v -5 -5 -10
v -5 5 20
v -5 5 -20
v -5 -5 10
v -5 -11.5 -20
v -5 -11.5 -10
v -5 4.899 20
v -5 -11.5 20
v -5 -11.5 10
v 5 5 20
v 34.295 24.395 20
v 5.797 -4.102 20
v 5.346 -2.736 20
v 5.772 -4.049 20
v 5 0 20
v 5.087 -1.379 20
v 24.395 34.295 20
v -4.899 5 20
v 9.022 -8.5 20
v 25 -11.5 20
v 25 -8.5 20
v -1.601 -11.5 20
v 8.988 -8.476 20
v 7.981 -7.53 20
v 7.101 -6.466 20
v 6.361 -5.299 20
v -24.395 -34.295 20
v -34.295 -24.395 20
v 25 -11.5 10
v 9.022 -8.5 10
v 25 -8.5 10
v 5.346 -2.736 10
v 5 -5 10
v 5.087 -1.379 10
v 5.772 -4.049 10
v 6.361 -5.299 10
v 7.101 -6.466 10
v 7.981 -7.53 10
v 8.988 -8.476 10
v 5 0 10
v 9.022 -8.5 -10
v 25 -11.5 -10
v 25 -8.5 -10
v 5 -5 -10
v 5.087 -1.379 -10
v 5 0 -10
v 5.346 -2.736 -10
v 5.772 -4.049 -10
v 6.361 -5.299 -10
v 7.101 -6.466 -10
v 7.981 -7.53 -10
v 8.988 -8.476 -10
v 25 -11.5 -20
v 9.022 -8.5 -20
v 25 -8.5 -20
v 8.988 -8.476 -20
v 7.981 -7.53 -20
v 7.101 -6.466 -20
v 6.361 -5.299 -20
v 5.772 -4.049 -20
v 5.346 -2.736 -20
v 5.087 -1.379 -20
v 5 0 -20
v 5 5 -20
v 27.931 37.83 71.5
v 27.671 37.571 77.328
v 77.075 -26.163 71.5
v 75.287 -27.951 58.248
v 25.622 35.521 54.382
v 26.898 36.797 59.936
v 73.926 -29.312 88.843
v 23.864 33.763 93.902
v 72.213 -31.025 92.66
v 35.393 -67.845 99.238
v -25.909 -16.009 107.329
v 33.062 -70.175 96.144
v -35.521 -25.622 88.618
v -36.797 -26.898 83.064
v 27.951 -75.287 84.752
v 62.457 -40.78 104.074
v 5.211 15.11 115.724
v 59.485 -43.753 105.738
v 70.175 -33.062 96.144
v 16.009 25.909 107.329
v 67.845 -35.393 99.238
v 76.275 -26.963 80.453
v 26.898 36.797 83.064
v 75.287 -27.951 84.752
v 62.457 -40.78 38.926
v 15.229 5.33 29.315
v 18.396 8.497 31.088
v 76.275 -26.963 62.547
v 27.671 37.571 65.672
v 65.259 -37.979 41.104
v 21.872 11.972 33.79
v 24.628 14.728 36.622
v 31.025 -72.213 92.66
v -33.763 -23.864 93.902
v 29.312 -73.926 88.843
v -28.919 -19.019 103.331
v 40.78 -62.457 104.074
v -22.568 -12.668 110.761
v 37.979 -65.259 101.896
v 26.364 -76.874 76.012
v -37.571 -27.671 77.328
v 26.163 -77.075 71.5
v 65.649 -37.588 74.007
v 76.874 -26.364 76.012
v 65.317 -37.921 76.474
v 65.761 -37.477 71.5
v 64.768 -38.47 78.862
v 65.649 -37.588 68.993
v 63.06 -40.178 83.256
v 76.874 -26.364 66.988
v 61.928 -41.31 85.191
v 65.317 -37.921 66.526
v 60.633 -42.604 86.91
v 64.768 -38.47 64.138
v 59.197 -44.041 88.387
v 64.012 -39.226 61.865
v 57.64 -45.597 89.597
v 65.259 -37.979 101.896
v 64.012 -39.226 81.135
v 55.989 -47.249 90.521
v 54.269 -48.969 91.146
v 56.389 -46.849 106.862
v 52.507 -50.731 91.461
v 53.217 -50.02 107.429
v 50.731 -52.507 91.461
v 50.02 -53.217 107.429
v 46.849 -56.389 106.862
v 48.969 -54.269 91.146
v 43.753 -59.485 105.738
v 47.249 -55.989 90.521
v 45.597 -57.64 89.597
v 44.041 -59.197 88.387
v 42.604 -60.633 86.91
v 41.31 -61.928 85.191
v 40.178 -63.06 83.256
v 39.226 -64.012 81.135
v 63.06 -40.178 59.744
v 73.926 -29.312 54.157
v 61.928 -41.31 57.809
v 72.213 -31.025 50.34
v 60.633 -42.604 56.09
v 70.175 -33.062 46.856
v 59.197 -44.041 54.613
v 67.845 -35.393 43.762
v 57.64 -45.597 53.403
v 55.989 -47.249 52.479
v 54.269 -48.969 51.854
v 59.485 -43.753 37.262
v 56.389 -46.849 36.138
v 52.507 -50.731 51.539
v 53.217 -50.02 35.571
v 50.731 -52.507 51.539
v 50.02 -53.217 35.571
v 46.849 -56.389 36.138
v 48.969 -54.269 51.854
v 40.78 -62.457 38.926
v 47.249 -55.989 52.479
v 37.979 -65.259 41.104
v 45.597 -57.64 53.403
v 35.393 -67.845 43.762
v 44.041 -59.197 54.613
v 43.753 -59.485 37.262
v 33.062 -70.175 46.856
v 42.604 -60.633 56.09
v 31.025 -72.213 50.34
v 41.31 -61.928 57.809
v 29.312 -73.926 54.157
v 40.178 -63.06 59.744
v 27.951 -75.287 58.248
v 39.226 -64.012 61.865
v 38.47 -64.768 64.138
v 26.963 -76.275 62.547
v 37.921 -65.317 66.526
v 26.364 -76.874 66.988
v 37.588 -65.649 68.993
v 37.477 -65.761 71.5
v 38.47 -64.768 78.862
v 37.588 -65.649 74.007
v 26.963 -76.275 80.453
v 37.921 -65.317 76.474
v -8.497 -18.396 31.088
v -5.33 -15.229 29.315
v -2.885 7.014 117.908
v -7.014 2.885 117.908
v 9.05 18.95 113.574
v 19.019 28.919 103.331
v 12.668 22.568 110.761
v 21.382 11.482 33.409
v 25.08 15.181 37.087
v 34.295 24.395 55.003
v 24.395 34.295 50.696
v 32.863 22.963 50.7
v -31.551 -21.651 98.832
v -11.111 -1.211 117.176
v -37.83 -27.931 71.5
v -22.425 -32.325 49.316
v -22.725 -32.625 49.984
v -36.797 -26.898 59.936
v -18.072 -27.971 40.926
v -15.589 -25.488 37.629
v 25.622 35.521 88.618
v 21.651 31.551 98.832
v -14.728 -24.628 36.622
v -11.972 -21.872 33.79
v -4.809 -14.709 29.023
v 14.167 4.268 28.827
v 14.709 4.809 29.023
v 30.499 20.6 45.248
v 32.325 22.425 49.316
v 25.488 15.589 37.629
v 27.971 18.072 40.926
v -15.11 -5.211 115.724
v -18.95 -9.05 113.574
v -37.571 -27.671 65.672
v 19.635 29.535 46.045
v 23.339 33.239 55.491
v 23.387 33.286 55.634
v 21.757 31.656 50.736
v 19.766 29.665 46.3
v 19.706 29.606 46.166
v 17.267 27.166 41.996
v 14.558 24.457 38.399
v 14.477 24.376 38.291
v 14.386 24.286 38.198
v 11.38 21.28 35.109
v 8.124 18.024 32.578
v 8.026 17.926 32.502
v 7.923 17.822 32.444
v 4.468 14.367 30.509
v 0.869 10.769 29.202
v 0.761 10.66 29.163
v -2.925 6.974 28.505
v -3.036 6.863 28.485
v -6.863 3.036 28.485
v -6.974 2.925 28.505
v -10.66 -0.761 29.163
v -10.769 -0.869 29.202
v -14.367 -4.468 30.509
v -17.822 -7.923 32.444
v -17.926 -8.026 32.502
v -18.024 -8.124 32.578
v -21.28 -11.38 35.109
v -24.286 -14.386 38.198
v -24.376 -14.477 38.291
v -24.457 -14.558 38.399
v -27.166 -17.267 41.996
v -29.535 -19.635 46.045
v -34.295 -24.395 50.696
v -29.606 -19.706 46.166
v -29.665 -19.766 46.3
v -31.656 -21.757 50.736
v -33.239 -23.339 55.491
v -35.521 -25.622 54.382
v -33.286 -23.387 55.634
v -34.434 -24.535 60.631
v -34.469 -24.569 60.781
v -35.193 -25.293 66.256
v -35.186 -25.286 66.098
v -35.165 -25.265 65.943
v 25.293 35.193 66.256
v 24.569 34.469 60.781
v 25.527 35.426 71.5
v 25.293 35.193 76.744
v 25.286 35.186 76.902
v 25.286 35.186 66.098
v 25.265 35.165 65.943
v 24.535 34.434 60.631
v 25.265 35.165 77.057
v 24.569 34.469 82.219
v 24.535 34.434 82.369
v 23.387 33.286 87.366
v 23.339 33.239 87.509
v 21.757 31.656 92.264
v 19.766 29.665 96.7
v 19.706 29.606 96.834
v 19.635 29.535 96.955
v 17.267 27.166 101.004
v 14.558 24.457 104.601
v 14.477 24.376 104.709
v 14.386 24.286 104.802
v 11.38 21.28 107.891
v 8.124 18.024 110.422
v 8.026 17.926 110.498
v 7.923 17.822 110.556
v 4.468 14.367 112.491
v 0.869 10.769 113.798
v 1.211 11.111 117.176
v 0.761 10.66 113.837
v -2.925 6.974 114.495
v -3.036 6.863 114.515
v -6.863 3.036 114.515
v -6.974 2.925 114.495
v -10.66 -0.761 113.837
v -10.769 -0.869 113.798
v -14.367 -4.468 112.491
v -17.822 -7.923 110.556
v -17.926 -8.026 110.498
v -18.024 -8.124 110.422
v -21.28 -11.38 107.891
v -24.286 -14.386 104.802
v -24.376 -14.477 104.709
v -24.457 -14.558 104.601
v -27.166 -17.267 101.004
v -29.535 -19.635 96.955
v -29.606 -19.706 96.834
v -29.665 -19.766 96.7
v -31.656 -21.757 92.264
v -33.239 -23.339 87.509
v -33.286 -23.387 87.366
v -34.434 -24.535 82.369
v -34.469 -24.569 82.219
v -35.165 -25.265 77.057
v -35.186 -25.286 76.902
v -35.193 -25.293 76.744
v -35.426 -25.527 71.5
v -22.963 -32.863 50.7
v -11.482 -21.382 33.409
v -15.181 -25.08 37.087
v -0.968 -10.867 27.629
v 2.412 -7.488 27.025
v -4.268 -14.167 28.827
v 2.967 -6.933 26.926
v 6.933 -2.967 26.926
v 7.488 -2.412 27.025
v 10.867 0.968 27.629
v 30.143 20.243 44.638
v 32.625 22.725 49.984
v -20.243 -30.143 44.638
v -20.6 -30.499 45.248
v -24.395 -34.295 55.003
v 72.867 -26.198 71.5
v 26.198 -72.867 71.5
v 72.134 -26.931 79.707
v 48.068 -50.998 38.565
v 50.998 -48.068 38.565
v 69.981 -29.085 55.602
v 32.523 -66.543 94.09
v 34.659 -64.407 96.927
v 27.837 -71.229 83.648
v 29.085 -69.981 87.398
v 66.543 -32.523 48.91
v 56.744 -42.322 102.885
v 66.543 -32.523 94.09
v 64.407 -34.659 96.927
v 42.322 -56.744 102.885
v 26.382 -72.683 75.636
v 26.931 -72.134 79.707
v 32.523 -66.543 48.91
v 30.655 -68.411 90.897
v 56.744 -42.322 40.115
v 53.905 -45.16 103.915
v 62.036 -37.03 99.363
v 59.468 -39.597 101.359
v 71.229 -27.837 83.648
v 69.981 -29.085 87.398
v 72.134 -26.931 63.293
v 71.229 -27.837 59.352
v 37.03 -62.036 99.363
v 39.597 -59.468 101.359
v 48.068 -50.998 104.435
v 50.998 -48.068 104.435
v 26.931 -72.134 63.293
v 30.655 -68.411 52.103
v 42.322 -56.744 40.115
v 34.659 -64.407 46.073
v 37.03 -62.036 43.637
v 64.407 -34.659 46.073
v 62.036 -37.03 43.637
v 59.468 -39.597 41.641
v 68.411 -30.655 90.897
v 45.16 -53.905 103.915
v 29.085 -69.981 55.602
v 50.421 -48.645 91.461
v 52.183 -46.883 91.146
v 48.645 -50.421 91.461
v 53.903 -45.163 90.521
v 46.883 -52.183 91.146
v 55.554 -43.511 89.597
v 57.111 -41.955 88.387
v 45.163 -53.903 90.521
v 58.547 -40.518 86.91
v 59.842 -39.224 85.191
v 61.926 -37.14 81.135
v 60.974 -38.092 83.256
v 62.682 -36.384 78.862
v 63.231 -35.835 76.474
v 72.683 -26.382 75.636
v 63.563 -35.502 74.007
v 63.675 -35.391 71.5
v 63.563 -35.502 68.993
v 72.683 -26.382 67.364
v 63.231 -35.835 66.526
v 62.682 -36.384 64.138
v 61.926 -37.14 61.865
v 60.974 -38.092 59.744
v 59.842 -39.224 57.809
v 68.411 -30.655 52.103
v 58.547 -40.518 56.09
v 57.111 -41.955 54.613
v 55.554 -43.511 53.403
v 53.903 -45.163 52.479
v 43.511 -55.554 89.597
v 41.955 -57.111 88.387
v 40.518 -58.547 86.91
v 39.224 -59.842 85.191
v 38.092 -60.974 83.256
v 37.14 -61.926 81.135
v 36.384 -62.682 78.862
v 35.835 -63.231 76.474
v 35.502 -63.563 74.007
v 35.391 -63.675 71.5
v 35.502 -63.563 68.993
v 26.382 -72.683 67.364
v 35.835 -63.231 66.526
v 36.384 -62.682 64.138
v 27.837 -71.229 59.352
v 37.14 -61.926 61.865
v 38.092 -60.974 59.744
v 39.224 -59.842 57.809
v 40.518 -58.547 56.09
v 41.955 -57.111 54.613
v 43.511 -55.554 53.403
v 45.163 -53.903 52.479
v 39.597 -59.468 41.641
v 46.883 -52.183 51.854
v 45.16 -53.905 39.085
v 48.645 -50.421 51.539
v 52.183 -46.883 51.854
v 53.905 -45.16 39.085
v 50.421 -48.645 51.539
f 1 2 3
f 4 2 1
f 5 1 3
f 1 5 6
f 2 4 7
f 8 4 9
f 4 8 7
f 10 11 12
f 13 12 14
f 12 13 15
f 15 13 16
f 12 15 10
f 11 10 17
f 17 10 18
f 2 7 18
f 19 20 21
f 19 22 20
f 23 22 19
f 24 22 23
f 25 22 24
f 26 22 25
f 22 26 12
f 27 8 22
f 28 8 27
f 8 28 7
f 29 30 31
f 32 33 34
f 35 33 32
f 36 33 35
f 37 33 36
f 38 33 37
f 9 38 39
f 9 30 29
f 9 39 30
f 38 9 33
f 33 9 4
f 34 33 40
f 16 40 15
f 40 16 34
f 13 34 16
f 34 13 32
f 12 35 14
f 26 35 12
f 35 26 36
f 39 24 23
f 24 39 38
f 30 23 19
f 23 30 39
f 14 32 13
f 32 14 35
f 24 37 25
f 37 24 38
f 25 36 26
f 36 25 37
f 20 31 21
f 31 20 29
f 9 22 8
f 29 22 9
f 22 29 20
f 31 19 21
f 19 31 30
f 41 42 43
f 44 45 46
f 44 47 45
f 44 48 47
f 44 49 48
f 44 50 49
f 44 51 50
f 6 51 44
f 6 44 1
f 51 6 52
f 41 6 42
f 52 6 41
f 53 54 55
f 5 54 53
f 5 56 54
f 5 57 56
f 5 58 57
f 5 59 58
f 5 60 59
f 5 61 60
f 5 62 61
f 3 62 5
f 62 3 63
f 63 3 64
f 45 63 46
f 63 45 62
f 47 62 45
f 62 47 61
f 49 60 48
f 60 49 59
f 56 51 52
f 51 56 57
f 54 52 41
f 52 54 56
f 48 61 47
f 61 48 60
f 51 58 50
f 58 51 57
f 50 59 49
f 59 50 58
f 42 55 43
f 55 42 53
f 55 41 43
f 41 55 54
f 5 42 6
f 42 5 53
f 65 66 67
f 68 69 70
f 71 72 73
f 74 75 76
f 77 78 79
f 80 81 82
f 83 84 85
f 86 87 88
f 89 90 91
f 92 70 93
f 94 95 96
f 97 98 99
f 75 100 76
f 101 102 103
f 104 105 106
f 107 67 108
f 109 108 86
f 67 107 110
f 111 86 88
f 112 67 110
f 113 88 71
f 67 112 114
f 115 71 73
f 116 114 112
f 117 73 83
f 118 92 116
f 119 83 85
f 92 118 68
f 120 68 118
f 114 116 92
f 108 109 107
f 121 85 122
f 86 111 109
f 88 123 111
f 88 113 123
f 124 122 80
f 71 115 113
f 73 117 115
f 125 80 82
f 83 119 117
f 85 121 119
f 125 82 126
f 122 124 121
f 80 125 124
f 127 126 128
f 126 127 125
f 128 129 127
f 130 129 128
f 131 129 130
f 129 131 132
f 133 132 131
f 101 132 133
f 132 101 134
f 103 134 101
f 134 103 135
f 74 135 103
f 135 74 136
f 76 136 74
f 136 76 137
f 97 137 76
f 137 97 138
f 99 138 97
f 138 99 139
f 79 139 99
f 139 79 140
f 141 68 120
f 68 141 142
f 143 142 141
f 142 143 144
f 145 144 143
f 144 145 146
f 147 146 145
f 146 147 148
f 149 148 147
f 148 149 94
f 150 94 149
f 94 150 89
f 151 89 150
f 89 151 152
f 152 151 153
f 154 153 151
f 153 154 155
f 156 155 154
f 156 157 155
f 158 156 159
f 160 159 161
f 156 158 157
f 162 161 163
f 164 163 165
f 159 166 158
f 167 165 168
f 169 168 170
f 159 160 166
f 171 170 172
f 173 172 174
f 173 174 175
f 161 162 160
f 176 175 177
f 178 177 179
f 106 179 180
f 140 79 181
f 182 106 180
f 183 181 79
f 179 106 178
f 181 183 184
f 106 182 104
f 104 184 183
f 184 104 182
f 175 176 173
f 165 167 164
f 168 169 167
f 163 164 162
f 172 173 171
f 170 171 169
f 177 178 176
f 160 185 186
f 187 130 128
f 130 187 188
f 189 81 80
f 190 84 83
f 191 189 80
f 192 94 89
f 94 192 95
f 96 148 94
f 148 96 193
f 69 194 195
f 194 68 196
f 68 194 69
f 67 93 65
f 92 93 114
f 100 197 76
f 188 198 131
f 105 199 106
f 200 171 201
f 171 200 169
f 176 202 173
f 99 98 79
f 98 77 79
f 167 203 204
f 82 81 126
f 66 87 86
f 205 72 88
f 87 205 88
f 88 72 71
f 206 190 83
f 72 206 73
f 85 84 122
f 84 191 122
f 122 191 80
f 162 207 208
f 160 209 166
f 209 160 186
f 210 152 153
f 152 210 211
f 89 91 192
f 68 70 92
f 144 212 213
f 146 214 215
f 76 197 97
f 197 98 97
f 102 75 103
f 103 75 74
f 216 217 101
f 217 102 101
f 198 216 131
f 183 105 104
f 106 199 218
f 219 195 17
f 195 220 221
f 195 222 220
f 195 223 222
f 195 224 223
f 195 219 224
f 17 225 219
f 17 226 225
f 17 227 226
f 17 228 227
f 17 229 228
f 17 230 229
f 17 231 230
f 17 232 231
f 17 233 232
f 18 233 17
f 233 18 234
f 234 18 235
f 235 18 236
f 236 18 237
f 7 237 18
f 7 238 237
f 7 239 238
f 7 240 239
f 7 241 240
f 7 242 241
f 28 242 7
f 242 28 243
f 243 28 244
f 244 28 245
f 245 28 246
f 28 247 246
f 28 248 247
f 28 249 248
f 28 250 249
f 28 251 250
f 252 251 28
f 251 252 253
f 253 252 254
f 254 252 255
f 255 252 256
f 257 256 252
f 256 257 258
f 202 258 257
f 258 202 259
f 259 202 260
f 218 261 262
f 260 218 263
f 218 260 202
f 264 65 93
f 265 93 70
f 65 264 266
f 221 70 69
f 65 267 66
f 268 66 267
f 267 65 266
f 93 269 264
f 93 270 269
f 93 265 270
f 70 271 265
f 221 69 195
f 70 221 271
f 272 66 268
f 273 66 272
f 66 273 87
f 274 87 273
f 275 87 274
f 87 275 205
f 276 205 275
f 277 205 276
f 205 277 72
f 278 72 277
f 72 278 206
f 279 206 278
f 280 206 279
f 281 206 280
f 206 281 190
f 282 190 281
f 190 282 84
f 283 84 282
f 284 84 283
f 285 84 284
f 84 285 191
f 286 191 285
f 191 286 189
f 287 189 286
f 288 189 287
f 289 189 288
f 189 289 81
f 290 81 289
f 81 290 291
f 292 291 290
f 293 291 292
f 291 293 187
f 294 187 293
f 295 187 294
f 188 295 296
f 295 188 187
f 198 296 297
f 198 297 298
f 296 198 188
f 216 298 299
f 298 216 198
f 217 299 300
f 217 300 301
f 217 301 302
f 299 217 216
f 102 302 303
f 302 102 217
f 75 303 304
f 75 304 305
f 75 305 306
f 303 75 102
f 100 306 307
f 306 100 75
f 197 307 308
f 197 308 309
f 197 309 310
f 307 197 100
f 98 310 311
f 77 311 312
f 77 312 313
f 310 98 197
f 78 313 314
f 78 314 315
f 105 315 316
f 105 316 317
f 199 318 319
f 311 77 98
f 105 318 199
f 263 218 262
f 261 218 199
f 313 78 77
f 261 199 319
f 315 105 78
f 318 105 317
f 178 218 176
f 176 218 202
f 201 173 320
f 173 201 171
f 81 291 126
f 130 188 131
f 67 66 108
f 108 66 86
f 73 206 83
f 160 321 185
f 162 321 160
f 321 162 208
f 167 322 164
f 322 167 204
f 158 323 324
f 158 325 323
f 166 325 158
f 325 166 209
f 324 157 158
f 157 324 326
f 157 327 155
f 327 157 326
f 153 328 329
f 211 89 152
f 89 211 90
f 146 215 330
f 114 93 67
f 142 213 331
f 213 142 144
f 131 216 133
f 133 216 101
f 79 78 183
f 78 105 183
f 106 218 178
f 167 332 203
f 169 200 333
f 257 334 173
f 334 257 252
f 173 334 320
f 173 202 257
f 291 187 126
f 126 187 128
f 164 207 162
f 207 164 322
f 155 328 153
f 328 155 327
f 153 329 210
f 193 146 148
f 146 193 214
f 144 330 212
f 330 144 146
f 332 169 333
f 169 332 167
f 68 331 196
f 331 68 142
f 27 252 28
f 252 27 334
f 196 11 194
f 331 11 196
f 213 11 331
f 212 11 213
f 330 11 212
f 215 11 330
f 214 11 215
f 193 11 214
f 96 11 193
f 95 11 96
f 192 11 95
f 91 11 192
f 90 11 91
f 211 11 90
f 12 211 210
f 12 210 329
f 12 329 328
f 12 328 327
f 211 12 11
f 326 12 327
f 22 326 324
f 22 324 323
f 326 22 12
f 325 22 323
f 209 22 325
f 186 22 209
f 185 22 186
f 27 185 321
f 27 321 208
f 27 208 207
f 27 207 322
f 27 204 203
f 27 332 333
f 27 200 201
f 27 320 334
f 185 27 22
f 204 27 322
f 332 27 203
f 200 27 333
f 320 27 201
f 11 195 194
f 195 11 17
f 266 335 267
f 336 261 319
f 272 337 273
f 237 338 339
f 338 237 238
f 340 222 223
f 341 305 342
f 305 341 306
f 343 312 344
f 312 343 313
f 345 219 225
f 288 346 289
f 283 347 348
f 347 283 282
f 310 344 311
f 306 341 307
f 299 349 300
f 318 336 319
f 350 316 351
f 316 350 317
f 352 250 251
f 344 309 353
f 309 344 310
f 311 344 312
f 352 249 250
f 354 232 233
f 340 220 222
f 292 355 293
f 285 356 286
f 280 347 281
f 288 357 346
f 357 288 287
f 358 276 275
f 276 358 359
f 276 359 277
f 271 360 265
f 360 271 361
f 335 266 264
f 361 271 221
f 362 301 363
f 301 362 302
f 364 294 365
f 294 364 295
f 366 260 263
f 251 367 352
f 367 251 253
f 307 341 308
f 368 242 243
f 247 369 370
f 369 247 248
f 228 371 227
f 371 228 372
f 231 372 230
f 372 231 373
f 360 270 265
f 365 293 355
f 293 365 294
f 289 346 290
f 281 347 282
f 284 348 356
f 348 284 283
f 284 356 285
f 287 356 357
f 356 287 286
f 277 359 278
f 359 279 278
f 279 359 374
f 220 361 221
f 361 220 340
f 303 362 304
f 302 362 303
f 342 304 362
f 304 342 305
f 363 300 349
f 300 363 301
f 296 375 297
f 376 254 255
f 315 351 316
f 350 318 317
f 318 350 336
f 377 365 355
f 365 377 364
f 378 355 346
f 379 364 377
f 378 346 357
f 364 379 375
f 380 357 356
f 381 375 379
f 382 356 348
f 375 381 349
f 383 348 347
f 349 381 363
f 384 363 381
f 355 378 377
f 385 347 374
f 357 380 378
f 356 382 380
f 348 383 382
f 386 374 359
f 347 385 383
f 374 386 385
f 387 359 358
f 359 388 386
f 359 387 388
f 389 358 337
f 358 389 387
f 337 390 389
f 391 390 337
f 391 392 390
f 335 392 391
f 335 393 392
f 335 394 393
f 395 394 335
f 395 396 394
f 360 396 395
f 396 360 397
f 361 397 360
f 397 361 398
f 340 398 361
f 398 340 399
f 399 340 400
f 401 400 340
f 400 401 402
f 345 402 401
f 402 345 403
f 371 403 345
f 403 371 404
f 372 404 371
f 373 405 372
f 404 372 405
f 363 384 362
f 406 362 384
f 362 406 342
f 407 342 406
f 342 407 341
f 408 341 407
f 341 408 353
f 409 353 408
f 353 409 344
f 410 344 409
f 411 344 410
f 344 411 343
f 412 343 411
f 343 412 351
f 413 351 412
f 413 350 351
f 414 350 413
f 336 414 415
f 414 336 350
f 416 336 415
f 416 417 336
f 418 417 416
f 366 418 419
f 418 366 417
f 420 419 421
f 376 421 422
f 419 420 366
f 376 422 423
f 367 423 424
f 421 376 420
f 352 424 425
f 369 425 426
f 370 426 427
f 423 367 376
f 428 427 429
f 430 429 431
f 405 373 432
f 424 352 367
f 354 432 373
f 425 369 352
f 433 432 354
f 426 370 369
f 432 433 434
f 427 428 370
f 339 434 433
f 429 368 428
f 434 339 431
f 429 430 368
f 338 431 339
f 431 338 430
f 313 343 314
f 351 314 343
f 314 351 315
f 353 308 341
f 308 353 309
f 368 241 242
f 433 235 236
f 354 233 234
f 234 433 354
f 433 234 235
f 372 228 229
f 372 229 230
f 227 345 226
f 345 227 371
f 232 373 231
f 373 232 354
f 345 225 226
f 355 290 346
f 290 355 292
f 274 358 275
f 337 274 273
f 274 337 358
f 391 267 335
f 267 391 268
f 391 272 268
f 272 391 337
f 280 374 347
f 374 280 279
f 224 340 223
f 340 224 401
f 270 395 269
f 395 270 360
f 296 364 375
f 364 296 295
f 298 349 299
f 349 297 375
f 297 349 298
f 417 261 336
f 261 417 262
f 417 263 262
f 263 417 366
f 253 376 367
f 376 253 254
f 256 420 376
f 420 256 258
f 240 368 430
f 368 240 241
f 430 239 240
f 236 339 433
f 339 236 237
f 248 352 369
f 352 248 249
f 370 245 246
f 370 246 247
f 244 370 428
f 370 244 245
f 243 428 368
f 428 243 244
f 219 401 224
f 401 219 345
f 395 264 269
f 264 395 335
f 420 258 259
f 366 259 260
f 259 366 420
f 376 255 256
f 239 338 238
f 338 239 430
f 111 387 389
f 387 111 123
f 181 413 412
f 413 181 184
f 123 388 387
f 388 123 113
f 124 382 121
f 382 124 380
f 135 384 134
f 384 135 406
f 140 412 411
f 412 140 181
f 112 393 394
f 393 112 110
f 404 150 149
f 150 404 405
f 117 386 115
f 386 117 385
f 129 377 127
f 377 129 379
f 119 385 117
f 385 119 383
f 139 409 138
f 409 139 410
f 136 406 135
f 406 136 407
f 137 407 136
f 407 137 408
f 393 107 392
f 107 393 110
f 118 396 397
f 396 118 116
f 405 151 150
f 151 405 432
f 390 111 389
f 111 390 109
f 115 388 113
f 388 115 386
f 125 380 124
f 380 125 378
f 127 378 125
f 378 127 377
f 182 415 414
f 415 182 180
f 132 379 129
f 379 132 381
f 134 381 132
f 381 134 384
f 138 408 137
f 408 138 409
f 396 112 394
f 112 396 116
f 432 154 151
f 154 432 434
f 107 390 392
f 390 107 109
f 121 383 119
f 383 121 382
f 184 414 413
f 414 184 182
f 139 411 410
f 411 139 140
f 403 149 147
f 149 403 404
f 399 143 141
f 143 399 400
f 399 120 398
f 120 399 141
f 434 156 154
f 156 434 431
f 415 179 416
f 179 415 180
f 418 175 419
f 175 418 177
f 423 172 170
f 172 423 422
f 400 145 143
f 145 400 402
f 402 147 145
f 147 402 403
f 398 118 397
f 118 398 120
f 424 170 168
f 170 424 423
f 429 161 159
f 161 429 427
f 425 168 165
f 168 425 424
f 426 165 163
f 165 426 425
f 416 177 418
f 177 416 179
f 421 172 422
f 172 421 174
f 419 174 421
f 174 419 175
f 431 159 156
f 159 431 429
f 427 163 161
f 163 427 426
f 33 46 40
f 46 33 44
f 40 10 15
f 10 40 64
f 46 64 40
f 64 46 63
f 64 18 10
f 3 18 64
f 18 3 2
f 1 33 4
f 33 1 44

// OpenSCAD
// ZZ's Cupholder

BLOCK_SIZE = 10;
ARM_WIDTH = 40;
ARM_CENTER = 20;
ARM_RADIUS = 11;
WING_ARMS = 30;

WING_WIDTH = (ARM_WIDTH - ARM_CENTER)/2;

CUP_R1 = 93/2;
CUP_R2 = 72/2;
CUP_H = 80;

THICKNESS = 3;

$fn = 50;

E = 0.1;

// rotate([0, 0, 45])

cube([BLOCK_SIZE, BLOCK_SIZE, ARM_WIDTH], center=true);
wing();
translate([0, 0, -ARM_WIDTH+BLOCK_SIZE])
    wing();

module wing() {
    difference() {
        translate([BLOCK_SIZE/2, -BLOCK_SIZE/2, ARM_WIDTH/2-BLOCK_SIZE/2])
            cube([BLOCK_SIZE * 2, BLOCK_SIZE, WING_WIDTH], center=true);
        translate([ARM_RADIUS + BLOCK_SIZE/2, 0, 0])
          cylinder(ARM_WIDTH + E, r=ARM_RADIUS, center=true);
    }
    translate([BLOCK_SIZE, -BLOCK_SIZE, ARM_WIDTH/2-BLOCK_SIZE/2])
        cube([WING_ARMS, 3, WING_WIDTH], center=true);
}

rotate([0, 0, 45])
translate([0, -CUP_H/2+BLOCK_SIZE*1.4/2, ARM_WIDTH/2 + CUP_R1 + BLOCK_SIZE/2])
    cup_holder();

module cup_holder() {
    rotate([90, 0, 0])
    difference() {
        union() {
            cylinder(CUP_H, r1=CUP_R1, r2=CUP_R2, center=true);
            translate([0, -CUP_R1/2, -CUP_H/2+BLOCK_SIZE*1.4/2])
                cube([CUP_R1*2-BLOCK_SIZE, CUP_R1+BLOCK_SIZE, BLOCK_SIZE*1.4], center=true);
        }
        translate([0, 0, -THICKNESS])
            cylinder(CUP_H+E, r1=CUP_R1-THICKNESS, r2=CUP_R2-THICKNESS, center=true);
        cylinder(CUP_H*2, r=20, center=true);
    }
}
